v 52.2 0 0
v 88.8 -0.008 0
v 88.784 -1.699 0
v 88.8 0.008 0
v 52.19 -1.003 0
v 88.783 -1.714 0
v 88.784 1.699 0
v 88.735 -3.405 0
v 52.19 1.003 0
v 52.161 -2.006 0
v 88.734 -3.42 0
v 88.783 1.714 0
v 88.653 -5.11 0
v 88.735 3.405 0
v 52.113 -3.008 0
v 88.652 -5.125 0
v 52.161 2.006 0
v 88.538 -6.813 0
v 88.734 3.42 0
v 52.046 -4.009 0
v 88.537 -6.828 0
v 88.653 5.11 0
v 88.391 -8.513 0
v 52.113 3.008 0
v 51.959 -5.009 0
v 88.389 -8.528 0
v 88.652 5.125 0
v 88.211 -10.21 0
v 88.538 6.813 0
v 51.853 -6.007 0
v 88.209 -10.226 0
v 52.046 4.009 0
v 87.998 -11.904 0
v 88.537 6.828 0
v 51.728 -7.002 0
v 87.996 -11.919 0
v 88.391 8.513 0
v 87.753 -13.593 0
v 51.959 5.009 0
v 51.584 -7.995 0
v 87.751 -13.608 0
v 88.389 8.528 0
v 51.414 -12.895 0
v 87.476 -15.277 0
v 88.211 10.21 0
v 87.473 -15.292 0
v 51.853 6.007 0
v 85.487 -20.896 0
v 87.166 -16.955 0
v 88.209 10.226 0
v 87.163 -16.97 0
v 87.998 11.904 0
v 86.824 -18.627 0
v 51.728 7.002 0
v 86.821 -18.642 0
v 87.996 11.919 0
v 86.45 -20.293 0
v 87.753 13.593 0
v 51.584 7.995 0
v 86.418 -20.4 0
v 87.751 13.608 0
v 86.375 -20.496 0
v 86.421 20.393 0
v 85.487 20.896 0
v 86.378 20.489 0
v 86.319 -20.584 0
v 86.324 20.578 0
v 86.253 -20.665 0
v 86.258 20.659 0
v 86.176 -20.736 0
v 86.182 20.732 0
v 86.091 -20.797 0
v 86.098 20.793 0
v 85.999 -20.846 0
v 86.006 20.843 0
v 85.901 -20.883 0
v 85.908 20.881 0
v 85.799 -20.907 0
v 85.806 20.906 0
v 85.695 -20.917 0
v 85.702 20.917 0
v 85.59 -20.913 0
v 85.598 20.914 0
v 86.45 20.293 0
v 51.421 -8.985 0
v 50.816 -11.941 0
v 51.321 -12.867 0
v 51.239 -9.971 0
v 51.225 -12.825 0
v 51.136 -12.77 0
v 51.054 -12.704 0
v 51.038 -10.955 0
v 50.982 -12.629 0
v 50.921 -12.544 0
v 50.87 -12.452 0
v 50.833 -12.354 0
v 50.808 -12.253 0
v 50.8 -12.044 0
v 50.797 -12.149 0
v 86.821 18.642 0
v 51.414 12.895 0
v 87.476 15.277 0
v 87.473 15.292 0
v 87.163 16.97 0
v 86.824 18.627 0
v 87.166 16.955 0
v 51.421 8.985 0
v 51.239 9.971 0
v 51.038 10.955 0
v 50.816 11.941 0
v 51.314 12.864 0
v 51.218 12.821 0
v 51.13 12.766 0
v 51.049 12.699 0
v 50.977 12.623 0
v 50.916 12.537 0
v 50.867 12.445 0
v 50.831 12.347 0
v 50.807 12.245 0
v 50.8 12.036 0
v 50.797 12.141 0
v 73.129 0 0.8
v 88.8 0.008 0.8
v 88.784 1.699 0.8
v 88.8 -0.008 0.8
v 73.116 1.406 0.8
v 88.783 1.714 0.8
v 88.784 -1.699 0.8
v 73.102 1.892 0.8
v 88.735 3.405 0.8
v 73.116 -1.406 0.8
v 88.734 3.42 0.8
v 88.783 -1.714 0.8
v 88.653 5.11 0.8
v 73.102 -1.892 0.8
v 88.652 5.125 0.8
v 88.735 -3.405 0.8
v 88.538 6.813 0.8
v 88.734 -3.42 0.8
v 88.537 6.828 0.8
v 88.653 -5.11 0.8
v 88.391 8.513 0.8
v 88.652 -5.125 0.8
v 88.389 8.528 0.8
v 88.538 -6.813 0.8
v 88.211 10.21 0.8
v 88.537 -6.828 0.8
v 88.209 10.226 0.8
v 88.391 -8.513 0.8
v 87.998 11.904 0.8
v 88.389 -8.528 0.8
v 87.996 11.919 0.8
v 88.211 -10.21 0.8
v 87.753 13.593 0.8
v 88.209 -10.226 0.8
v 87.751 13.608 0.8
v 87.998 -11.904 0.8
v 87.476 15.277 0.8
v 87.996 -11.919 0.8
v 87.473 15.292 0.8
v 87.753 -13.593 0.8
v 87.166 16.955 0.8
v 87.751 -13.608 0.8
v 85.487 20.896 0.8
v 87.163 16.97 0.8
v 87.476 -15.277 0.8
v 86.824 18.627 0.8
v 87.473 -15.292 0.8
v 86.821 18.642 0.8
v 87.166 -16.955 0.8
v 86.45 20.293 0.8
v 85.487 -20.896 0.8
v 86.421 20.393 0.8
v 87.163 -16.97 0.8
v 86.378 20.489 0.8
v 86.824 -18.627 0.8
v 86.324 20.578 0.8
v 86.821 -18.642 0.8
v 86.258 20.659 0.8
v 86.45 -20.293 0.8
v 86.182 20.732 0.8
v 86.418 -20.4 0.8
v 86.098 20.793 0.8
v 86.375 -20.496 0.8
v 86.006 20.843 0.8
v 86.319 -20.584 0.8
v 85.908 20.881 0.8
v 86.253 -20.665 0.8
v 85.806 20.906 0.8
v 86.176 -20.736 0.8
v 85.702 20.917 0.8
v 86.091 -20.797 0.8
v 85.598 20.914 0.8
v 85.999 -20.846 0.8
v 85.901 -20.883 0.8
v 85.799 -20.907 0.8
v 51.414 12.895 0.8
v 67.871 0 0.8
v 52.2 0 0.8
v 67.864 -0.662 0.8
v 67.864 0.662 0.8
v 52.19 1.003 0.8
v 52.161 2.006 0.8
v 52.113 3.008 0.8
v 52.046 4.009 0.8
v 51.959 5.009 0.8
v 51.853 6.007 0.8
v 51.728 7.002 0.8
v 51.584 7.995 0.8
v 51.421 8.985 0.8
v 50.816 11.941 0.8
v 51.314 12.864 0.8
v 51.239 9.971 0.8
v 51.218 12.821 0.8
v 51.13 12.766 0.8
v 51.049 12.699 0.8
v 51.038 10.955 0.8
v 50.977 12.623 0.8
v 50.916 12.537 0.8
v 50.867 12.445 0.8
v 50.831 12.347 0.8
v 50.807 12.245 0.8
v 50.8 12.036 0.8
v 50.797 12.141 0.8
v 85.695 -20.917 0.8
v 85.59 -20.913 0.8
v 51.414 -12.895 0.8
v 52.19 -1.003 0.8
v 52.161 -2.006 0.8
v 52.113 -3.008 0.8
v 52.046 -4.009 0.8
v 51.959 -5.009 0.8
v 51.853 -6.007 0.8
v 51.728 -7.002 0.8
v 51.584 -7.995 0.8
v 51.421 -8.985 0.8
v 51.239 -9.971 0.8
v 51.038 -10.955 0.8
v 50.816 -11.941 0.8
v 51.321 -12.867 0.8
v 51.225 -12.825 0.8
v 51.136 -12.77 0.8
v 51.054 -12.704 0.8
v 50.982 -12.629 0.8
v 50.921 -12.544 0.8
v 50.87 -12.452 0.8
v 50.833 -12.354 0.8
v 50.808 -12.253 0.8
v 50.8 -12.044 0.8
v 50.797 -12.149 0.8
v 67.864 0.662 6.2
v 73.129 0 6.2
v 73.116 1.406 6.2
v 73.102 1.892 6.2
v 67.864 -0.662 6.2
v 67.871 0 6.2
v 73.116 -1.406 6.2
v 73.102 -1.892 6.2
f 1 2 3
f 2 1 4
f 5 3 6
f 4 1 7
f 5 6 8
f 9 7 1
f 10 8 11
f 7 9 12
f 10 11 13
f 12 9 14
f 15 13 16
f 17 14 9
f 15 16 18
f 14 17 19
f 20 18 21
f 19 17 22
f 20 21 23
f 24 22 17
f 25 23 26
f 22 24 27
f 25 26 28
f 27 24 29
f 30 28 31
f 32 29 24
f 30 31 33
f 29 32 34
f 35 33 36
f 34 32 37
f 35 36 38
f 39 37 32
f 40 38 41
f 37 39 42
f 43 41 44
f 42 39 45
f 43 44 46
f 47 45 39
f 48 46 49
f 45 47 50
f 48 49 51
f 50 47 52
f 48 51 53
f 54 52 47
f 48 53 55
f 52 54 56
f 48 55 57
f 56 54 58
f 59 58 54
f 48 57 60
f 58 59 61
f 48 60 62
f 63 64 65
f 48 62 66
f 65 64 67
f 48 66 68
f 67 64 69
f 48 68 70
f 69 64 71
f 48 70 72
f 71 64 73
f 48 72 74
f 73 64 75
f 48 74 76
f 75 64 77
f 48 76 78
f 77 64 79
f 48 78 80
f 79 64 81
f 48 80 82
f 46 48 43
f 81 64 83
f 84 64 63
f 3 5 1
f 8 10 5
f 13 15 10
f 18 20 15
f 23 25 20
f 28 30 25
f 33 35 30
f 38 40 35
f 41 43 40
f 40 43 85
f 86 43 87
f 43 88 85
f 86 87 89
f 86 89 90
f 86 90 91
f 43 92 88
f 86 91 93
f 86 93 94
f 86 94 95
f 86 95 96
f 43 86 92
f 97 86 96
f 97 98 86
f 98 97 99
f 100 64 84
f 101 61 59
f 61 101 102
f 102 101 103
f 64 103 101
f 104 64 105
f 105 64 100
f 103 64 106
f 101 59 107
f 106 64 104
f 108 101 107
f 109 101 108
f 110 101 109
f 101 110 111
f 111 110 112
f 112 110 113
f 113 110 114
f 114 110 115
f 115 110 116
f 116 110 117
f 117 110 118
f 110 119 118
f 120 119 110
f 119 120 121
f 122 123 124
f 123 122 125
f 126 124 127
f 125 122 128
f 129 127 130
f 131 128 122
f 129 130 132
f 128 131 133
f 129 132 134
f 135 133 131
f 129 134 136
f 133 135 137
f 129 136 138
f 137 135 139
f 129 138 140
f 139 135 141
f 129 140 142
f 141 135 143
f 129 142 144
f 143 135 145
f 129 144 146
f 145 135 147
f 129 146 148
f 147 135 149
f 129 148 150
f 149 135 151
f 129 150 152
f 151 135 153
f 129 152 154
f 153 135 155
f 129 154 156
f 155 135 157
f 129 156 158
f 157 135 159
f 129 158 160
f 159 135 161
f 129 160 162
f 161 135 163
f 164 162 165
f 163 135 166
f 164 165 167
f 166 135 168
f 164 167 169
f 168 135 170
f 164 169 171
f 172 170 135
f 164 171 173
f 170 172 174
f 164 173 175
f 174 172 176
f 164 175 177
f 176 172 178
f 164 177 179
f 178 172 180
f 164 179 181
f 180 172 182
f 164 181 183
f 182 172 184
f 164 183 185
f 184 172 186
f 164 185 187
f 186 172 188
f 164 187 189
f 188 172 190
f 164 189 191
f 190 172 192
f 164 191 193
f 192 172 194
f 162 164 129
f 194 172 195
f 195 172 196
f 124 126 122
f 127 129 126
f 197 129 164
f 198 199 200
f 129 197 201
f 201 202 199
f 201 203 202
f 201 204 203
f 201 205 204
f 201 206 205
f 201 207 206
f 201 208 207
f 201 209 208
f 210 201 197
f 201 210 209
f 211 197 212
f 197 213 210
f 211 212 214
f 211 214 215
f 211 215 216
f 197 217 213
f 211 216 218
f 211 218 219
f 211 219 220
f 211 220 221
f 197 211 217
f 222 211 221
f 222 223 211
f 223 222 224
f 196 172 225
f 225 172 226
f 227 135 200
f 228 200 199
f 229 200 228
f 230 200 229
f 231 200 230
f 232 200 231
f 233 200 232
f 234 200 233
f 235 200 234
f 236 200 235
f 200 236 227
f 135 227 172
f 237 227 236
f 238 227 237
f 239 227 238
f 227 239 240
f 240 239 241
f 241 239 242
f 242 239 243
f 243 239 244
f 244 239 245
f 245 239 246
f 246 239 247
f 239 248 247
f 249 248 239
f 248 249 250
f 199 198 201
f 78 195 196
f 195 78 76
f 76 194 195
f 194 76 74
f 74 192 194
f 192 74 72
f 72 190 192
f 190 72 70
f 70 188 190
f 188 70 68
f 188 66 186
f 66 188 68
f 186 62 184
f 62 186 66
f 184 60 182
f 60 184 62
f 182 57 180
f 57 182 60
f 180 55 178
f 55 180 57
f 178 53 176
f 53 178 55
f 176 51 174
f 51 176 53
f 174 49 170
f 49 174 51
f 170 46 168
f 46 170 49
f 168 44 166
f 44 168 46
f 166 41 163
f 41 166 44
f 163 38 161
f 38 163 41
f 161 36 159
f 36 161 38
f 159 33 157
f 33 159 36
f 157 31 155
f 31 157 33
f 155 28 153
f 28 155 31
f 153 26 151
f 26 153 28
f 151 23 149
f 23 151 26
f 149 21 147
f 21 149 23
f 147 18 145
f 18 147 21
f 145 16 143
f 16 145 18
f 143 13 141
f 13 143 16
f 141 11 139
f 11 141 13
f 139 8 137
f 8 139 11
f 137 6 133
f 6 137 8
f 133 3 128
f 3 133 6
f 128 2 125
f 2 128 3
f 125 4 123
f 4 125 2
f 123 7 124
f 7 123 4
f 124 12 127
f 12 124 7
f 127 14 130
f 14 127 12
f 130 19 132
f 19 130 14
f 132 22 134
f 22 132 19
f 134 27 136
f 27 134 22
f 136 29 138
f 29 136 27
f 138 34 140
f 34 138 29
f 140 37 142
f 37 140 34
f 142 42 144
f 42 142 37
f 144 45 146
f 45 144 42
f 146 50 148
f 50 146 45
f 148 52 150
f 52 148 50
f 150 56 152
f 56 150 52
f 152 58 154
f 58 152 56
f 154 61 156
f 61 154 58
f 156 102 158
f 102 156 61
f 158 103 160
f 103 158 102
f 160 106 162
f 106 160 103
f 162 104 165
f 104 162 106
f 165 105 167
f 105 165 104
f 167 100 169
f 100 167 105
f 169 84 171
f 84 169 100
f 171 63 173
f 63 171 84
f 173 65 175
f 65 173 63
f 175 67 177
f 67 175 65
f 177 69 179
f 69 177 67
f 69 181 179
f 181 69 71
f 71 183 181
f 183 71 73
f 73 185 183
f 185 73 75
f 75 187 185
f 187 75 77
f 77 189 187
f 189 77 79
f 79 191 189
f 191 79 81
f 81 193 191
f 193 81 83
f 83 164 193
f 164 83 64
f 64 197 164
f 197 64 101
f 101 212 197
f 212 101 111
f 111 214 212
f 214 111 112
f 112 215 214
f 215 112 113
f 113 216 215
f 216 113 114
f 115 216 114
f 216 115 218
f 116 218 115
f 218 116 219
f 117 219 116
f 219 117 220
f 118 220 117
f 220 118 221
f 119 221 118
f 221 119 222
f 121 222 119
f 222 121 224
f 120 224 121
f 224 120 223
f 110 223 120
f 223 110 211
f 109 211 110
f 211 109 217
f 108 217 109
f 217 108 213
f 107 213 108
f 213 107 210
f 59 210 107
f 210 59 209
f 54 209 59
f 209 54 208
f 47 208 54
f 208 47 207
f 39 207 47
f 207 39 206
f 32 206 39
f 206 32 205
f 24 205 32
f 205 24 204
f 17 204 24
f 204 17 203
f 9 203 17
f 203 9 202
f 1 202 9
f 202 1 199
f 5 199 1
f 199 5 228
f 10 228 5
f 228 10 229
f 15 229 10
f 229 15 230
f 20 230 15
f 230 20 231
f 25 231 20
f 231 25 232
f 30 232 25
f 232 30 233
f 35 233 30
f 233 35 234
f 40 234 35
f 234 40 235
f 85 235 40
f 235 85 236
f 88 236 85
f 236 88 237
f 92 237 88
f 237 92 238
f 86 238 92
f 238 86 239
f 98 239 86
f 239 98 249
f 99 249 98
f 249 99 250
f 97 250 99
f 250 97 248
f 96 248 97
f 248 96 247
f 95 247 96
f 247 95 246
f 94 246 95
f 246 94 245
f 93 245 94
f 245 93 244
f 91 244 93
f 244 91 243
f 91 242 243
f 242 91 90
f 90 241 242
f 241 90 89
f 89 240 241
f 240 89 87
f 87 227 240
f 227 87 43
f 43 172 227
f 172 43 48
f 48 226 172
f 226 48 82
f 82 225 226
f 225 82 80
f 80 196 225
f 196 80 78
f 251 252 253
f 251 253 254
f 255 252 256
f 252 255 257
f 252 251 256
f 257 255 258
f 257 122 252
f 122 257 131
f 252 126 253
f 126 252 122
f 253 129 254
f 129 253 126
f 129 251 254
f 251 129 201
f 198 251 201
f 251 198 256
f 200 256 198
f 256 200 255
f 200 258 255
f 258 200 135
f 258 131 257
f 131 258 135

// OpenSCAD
// file: parameters.scad
// =============================================================================
// Gen-BZ — nightly 2026-10-11 (physics_scorer, honest magpylib watts)
// Minimum-gap, wire-saver stator for the Gen-BX rotors: only 5.4 mm of copper (12 layers), so the magnet faces are just 8.0 mm apart and peak Bz at the copper reaches ≈0.64 T. It holds ~20 % less copper than Gen-BX (≈300 m, leaving ~90 m of the spool spare and much less winding), and loses only ≈5.5 % of the watts vs Gen-BX — the best watts-per-metre of wire tonight.
// Clocking 0 deg (magnets N facing S) + D-flat keyed bore + index notch + flip-symmetric hole map.
// Windable 2-piece bobbin; turns = physics_scorer turns_fit; copper only between flanges.
// Steel back-iron: 2× Ø168 × 4.76 mm (3/16") mild-steel discs (steel_backiron_disc.dxf); magnets sit ON the steel
// (through-pockets) -> score with --back-iron. Night 2026-10-11.
// =============================================================================
topology            = "dual_rotor";

// --- Wire / winding (physics_scorer winding-fit) -------------------------------
wire_awg            = 26;
wire_od             = 0.45;     // insulated OD mm (bare 0.405)
fill_realistic      = 0.65;     // insulated-wire area / window (DENSE layered wind with a jig; scorer cap 0.65)
turns               = 328;       // = physics_scorer turns_fit (do NOT raise)
coil_former_type    = "bobbin";
coil_core_inset     = 14.87;     // radial copper build: hub = copper boundary inset by this
wind_build_axial    = 0.0;      // nothing proud of the flanges
wind_build_radial   = 0.0;

// --- Bobbin (base + lid) ---------------------------------------------------------
coil_id_r           = 53.00;    // copper boundary sector
coil_od_r           = 88.00;
span_deg            = 26.43;    // = pitch - 2*asin((wall+0.85)/coil_id_r) -> >=1.2 mm stator web
former_web          = 5.40;     // copper height between flanges (TALL copper: steel keeps Bz up)
flange_t            = 0.80;     // >= 0.8 mm FDM wall rule (tall winds push on the flanges)
wall                = 0.80;     // flange lip beyond copper
former_bare_h       = former_web + 2 * flange_t;
coil_envelope_h     = former_bare_h + 2 * wind_build_axial;
tab_w               = 7.0;
tab_len             = 7.0;
tab_h               = former_bare_h / 2;
pin_d               = 1.9;      // 1.75 mm filament locating pin
coil_mount_r        = coil_od_r + 0.2 + 4.0;
lead_y              = 1.6;
lead_slot_w         = 0.9;
lead_groove_d       = 0.6;

// --- Gap -------------------------------------------------------------------------
run_clear           = 0.50;     // rotor face -> flange
gap_spacer_h        = run_clear + wind_build_axial;
m2m                 = coil_envelope_h + 2 * run_clear;   // rotor face to rotor face (= gap_sleeve length)

// --- Stator ----------------------------------------------------------------------
coil_stations       = 12;
bay_clear           = 0.25;
stator_thick        = former_bare_h;                        // bobbins flush both faces
stator_od           = 194;
shaft_clear_stator  = 14.0;     // stator is static; gap sleeve OD 12 spins inside

// --- Rotor(s) --------------------------------------------------------------------
magnet_Br           = 1.43;     // N52
magnet_d_large      = 20.0;
magnet_h_large      = 5.0;      // one O20x5 per pocket
magnet_h_small      = 5.0;      // unused: no O5 pockets in this kit
halbach_magnetisation = "none";  // NO O5 assist magnets in this kit (scan: they lower the 4-pole score)
rotor_b_same_axis   = true;     // same-index magnets share one axis: N faces S across the gap
large_pocket_d      = 20.3;
small_pocket_d      = 5.3;
pocket_h            = 5.00;     // THROUGH the carrier: magnet back face sits on the steel disc (FLUSH seat: carrier = magnet height, magnet face level with the rotor face)
large_n             = 8;
R_large             = 71.0;
small_r_list        = [];       // no O5 pockets
carrier_od          = 168.0;
carrier_thick       = pocket_h;
hub_h               = 12.0;     // > steel_t + insert: radial set-screw clears the steel
hub_od              = 24.0;     // slim hub so the M4 brace rods fit at R~18 inside the coil ring
hub_insert_d        = 4.0;      // M3 heat-set insert, radial, bears on the D-flat
rotor_b_offset_deg  = 0.0;      // CLOCKING: magnets directly opposite
shaft_key           = "dflat";
dflat_depth         = 0.5;      // 8 mm shaft with 0.5 mm flat (7.5 across flat)
index_notch_d       = 3.0;

// --- Steel back-iron (buyable laser-cut) -------------------------------------------
steel_t             = 4.76;      // mild steel thickness (image method ignores it; sized from steel_flux.py so the return path stays well below saturation)
steel_center_hole   = 26.0;     // slips over the rotor hub (OD 24)
steel_od            = carrier_od;   // steel disc OD = rotor carrier OD

// --- Modular MAX interface ----------------------------------------------------------
shaft_bore          = 8.35;
dflat_x             = 4.0 - dflat_depth + (shaft_bore - 8.0) / 2;
bearing_d           = 21.85;
bearing_h           = 7.2;
m3_clear            = 3.5;
bolt_r_inner        = 30.0;     // M3 steel-disc clamp bolts (inside the magnet ring)
bolt_n_inner        = 4;
bolt_inner_angles   = [0, 90, 180, 270];
bolt_r_outer        = 44.0;     // second M3 steel-disc clamp ring
bolt_outer_angles   = [67.5, 112.5, 247.5, 292.5];
flange_bolt_r       = 91.5;     // frame rods: OUTSIDE the rotor OD (rotors spin inside them)
flange_bolt_n       = 4;
flange_bolt_offset  = 45.00;    // between coil stations -> never cuts a lead groove/tab
brace_r             = 18.0;
brace_d             = 4.3;      // temporary M4 jack rods (assembly only)
brace_n             = 4;
brace_angles        = [45, 135, 225, 315];          // flip-symmetric

spacer_pad_od       = 14.0;
spacer_pad_id       = m3_clear;
endbell_od          = 193.0;
endbell_thick       = 8.0;
endbell_shaft_clear = 10.0;
collar_h            = 10.0;
standoff_od         = 9.0;
frame_standoff_h    = run_clear + carrier_thick + hub_h + collar_h + 2.0;
sleeve_od           = 12.0;
plate_max_mm        = 410;

$fn = 64;
// main file
// Gen-BZ — bobbin BASE (bottom flange + hub). Print x12, flange down. Wind 26 AWG x 328 t around
// the hub with the LID glued on (coil_lid.stl). Copper lives ONLY between the flanges (no proud winds).
include <parameters.scad>;
$fn = 48;
module sector_2d(r_in, r_out, ang) {
    polygon([
        for (a = [-ang/2 : ang/24 : ang/2]) [r_in*cos(a), r_in*sin(a)],
        for (a = [ang/2 : -ang/24 : -ang/2]) [r_out*cos(a), r_out*sin(a)]
    ]);
}
module footprint_2d() { offset(r=wall) sector_2d(coil_id_r, coil_od_r, span_deg); }
module hub_2d()       { offset(delta=-coil_core_inset) sector_2d(coil_id_r, coil_od_r, span_deg); }

union() {
    linear_extrude(flange_t) footprint_2d();
    translate([0, 0, flange_t - 0.01]) linear_extrude(former_web + 0.01) hub_2d();
}
